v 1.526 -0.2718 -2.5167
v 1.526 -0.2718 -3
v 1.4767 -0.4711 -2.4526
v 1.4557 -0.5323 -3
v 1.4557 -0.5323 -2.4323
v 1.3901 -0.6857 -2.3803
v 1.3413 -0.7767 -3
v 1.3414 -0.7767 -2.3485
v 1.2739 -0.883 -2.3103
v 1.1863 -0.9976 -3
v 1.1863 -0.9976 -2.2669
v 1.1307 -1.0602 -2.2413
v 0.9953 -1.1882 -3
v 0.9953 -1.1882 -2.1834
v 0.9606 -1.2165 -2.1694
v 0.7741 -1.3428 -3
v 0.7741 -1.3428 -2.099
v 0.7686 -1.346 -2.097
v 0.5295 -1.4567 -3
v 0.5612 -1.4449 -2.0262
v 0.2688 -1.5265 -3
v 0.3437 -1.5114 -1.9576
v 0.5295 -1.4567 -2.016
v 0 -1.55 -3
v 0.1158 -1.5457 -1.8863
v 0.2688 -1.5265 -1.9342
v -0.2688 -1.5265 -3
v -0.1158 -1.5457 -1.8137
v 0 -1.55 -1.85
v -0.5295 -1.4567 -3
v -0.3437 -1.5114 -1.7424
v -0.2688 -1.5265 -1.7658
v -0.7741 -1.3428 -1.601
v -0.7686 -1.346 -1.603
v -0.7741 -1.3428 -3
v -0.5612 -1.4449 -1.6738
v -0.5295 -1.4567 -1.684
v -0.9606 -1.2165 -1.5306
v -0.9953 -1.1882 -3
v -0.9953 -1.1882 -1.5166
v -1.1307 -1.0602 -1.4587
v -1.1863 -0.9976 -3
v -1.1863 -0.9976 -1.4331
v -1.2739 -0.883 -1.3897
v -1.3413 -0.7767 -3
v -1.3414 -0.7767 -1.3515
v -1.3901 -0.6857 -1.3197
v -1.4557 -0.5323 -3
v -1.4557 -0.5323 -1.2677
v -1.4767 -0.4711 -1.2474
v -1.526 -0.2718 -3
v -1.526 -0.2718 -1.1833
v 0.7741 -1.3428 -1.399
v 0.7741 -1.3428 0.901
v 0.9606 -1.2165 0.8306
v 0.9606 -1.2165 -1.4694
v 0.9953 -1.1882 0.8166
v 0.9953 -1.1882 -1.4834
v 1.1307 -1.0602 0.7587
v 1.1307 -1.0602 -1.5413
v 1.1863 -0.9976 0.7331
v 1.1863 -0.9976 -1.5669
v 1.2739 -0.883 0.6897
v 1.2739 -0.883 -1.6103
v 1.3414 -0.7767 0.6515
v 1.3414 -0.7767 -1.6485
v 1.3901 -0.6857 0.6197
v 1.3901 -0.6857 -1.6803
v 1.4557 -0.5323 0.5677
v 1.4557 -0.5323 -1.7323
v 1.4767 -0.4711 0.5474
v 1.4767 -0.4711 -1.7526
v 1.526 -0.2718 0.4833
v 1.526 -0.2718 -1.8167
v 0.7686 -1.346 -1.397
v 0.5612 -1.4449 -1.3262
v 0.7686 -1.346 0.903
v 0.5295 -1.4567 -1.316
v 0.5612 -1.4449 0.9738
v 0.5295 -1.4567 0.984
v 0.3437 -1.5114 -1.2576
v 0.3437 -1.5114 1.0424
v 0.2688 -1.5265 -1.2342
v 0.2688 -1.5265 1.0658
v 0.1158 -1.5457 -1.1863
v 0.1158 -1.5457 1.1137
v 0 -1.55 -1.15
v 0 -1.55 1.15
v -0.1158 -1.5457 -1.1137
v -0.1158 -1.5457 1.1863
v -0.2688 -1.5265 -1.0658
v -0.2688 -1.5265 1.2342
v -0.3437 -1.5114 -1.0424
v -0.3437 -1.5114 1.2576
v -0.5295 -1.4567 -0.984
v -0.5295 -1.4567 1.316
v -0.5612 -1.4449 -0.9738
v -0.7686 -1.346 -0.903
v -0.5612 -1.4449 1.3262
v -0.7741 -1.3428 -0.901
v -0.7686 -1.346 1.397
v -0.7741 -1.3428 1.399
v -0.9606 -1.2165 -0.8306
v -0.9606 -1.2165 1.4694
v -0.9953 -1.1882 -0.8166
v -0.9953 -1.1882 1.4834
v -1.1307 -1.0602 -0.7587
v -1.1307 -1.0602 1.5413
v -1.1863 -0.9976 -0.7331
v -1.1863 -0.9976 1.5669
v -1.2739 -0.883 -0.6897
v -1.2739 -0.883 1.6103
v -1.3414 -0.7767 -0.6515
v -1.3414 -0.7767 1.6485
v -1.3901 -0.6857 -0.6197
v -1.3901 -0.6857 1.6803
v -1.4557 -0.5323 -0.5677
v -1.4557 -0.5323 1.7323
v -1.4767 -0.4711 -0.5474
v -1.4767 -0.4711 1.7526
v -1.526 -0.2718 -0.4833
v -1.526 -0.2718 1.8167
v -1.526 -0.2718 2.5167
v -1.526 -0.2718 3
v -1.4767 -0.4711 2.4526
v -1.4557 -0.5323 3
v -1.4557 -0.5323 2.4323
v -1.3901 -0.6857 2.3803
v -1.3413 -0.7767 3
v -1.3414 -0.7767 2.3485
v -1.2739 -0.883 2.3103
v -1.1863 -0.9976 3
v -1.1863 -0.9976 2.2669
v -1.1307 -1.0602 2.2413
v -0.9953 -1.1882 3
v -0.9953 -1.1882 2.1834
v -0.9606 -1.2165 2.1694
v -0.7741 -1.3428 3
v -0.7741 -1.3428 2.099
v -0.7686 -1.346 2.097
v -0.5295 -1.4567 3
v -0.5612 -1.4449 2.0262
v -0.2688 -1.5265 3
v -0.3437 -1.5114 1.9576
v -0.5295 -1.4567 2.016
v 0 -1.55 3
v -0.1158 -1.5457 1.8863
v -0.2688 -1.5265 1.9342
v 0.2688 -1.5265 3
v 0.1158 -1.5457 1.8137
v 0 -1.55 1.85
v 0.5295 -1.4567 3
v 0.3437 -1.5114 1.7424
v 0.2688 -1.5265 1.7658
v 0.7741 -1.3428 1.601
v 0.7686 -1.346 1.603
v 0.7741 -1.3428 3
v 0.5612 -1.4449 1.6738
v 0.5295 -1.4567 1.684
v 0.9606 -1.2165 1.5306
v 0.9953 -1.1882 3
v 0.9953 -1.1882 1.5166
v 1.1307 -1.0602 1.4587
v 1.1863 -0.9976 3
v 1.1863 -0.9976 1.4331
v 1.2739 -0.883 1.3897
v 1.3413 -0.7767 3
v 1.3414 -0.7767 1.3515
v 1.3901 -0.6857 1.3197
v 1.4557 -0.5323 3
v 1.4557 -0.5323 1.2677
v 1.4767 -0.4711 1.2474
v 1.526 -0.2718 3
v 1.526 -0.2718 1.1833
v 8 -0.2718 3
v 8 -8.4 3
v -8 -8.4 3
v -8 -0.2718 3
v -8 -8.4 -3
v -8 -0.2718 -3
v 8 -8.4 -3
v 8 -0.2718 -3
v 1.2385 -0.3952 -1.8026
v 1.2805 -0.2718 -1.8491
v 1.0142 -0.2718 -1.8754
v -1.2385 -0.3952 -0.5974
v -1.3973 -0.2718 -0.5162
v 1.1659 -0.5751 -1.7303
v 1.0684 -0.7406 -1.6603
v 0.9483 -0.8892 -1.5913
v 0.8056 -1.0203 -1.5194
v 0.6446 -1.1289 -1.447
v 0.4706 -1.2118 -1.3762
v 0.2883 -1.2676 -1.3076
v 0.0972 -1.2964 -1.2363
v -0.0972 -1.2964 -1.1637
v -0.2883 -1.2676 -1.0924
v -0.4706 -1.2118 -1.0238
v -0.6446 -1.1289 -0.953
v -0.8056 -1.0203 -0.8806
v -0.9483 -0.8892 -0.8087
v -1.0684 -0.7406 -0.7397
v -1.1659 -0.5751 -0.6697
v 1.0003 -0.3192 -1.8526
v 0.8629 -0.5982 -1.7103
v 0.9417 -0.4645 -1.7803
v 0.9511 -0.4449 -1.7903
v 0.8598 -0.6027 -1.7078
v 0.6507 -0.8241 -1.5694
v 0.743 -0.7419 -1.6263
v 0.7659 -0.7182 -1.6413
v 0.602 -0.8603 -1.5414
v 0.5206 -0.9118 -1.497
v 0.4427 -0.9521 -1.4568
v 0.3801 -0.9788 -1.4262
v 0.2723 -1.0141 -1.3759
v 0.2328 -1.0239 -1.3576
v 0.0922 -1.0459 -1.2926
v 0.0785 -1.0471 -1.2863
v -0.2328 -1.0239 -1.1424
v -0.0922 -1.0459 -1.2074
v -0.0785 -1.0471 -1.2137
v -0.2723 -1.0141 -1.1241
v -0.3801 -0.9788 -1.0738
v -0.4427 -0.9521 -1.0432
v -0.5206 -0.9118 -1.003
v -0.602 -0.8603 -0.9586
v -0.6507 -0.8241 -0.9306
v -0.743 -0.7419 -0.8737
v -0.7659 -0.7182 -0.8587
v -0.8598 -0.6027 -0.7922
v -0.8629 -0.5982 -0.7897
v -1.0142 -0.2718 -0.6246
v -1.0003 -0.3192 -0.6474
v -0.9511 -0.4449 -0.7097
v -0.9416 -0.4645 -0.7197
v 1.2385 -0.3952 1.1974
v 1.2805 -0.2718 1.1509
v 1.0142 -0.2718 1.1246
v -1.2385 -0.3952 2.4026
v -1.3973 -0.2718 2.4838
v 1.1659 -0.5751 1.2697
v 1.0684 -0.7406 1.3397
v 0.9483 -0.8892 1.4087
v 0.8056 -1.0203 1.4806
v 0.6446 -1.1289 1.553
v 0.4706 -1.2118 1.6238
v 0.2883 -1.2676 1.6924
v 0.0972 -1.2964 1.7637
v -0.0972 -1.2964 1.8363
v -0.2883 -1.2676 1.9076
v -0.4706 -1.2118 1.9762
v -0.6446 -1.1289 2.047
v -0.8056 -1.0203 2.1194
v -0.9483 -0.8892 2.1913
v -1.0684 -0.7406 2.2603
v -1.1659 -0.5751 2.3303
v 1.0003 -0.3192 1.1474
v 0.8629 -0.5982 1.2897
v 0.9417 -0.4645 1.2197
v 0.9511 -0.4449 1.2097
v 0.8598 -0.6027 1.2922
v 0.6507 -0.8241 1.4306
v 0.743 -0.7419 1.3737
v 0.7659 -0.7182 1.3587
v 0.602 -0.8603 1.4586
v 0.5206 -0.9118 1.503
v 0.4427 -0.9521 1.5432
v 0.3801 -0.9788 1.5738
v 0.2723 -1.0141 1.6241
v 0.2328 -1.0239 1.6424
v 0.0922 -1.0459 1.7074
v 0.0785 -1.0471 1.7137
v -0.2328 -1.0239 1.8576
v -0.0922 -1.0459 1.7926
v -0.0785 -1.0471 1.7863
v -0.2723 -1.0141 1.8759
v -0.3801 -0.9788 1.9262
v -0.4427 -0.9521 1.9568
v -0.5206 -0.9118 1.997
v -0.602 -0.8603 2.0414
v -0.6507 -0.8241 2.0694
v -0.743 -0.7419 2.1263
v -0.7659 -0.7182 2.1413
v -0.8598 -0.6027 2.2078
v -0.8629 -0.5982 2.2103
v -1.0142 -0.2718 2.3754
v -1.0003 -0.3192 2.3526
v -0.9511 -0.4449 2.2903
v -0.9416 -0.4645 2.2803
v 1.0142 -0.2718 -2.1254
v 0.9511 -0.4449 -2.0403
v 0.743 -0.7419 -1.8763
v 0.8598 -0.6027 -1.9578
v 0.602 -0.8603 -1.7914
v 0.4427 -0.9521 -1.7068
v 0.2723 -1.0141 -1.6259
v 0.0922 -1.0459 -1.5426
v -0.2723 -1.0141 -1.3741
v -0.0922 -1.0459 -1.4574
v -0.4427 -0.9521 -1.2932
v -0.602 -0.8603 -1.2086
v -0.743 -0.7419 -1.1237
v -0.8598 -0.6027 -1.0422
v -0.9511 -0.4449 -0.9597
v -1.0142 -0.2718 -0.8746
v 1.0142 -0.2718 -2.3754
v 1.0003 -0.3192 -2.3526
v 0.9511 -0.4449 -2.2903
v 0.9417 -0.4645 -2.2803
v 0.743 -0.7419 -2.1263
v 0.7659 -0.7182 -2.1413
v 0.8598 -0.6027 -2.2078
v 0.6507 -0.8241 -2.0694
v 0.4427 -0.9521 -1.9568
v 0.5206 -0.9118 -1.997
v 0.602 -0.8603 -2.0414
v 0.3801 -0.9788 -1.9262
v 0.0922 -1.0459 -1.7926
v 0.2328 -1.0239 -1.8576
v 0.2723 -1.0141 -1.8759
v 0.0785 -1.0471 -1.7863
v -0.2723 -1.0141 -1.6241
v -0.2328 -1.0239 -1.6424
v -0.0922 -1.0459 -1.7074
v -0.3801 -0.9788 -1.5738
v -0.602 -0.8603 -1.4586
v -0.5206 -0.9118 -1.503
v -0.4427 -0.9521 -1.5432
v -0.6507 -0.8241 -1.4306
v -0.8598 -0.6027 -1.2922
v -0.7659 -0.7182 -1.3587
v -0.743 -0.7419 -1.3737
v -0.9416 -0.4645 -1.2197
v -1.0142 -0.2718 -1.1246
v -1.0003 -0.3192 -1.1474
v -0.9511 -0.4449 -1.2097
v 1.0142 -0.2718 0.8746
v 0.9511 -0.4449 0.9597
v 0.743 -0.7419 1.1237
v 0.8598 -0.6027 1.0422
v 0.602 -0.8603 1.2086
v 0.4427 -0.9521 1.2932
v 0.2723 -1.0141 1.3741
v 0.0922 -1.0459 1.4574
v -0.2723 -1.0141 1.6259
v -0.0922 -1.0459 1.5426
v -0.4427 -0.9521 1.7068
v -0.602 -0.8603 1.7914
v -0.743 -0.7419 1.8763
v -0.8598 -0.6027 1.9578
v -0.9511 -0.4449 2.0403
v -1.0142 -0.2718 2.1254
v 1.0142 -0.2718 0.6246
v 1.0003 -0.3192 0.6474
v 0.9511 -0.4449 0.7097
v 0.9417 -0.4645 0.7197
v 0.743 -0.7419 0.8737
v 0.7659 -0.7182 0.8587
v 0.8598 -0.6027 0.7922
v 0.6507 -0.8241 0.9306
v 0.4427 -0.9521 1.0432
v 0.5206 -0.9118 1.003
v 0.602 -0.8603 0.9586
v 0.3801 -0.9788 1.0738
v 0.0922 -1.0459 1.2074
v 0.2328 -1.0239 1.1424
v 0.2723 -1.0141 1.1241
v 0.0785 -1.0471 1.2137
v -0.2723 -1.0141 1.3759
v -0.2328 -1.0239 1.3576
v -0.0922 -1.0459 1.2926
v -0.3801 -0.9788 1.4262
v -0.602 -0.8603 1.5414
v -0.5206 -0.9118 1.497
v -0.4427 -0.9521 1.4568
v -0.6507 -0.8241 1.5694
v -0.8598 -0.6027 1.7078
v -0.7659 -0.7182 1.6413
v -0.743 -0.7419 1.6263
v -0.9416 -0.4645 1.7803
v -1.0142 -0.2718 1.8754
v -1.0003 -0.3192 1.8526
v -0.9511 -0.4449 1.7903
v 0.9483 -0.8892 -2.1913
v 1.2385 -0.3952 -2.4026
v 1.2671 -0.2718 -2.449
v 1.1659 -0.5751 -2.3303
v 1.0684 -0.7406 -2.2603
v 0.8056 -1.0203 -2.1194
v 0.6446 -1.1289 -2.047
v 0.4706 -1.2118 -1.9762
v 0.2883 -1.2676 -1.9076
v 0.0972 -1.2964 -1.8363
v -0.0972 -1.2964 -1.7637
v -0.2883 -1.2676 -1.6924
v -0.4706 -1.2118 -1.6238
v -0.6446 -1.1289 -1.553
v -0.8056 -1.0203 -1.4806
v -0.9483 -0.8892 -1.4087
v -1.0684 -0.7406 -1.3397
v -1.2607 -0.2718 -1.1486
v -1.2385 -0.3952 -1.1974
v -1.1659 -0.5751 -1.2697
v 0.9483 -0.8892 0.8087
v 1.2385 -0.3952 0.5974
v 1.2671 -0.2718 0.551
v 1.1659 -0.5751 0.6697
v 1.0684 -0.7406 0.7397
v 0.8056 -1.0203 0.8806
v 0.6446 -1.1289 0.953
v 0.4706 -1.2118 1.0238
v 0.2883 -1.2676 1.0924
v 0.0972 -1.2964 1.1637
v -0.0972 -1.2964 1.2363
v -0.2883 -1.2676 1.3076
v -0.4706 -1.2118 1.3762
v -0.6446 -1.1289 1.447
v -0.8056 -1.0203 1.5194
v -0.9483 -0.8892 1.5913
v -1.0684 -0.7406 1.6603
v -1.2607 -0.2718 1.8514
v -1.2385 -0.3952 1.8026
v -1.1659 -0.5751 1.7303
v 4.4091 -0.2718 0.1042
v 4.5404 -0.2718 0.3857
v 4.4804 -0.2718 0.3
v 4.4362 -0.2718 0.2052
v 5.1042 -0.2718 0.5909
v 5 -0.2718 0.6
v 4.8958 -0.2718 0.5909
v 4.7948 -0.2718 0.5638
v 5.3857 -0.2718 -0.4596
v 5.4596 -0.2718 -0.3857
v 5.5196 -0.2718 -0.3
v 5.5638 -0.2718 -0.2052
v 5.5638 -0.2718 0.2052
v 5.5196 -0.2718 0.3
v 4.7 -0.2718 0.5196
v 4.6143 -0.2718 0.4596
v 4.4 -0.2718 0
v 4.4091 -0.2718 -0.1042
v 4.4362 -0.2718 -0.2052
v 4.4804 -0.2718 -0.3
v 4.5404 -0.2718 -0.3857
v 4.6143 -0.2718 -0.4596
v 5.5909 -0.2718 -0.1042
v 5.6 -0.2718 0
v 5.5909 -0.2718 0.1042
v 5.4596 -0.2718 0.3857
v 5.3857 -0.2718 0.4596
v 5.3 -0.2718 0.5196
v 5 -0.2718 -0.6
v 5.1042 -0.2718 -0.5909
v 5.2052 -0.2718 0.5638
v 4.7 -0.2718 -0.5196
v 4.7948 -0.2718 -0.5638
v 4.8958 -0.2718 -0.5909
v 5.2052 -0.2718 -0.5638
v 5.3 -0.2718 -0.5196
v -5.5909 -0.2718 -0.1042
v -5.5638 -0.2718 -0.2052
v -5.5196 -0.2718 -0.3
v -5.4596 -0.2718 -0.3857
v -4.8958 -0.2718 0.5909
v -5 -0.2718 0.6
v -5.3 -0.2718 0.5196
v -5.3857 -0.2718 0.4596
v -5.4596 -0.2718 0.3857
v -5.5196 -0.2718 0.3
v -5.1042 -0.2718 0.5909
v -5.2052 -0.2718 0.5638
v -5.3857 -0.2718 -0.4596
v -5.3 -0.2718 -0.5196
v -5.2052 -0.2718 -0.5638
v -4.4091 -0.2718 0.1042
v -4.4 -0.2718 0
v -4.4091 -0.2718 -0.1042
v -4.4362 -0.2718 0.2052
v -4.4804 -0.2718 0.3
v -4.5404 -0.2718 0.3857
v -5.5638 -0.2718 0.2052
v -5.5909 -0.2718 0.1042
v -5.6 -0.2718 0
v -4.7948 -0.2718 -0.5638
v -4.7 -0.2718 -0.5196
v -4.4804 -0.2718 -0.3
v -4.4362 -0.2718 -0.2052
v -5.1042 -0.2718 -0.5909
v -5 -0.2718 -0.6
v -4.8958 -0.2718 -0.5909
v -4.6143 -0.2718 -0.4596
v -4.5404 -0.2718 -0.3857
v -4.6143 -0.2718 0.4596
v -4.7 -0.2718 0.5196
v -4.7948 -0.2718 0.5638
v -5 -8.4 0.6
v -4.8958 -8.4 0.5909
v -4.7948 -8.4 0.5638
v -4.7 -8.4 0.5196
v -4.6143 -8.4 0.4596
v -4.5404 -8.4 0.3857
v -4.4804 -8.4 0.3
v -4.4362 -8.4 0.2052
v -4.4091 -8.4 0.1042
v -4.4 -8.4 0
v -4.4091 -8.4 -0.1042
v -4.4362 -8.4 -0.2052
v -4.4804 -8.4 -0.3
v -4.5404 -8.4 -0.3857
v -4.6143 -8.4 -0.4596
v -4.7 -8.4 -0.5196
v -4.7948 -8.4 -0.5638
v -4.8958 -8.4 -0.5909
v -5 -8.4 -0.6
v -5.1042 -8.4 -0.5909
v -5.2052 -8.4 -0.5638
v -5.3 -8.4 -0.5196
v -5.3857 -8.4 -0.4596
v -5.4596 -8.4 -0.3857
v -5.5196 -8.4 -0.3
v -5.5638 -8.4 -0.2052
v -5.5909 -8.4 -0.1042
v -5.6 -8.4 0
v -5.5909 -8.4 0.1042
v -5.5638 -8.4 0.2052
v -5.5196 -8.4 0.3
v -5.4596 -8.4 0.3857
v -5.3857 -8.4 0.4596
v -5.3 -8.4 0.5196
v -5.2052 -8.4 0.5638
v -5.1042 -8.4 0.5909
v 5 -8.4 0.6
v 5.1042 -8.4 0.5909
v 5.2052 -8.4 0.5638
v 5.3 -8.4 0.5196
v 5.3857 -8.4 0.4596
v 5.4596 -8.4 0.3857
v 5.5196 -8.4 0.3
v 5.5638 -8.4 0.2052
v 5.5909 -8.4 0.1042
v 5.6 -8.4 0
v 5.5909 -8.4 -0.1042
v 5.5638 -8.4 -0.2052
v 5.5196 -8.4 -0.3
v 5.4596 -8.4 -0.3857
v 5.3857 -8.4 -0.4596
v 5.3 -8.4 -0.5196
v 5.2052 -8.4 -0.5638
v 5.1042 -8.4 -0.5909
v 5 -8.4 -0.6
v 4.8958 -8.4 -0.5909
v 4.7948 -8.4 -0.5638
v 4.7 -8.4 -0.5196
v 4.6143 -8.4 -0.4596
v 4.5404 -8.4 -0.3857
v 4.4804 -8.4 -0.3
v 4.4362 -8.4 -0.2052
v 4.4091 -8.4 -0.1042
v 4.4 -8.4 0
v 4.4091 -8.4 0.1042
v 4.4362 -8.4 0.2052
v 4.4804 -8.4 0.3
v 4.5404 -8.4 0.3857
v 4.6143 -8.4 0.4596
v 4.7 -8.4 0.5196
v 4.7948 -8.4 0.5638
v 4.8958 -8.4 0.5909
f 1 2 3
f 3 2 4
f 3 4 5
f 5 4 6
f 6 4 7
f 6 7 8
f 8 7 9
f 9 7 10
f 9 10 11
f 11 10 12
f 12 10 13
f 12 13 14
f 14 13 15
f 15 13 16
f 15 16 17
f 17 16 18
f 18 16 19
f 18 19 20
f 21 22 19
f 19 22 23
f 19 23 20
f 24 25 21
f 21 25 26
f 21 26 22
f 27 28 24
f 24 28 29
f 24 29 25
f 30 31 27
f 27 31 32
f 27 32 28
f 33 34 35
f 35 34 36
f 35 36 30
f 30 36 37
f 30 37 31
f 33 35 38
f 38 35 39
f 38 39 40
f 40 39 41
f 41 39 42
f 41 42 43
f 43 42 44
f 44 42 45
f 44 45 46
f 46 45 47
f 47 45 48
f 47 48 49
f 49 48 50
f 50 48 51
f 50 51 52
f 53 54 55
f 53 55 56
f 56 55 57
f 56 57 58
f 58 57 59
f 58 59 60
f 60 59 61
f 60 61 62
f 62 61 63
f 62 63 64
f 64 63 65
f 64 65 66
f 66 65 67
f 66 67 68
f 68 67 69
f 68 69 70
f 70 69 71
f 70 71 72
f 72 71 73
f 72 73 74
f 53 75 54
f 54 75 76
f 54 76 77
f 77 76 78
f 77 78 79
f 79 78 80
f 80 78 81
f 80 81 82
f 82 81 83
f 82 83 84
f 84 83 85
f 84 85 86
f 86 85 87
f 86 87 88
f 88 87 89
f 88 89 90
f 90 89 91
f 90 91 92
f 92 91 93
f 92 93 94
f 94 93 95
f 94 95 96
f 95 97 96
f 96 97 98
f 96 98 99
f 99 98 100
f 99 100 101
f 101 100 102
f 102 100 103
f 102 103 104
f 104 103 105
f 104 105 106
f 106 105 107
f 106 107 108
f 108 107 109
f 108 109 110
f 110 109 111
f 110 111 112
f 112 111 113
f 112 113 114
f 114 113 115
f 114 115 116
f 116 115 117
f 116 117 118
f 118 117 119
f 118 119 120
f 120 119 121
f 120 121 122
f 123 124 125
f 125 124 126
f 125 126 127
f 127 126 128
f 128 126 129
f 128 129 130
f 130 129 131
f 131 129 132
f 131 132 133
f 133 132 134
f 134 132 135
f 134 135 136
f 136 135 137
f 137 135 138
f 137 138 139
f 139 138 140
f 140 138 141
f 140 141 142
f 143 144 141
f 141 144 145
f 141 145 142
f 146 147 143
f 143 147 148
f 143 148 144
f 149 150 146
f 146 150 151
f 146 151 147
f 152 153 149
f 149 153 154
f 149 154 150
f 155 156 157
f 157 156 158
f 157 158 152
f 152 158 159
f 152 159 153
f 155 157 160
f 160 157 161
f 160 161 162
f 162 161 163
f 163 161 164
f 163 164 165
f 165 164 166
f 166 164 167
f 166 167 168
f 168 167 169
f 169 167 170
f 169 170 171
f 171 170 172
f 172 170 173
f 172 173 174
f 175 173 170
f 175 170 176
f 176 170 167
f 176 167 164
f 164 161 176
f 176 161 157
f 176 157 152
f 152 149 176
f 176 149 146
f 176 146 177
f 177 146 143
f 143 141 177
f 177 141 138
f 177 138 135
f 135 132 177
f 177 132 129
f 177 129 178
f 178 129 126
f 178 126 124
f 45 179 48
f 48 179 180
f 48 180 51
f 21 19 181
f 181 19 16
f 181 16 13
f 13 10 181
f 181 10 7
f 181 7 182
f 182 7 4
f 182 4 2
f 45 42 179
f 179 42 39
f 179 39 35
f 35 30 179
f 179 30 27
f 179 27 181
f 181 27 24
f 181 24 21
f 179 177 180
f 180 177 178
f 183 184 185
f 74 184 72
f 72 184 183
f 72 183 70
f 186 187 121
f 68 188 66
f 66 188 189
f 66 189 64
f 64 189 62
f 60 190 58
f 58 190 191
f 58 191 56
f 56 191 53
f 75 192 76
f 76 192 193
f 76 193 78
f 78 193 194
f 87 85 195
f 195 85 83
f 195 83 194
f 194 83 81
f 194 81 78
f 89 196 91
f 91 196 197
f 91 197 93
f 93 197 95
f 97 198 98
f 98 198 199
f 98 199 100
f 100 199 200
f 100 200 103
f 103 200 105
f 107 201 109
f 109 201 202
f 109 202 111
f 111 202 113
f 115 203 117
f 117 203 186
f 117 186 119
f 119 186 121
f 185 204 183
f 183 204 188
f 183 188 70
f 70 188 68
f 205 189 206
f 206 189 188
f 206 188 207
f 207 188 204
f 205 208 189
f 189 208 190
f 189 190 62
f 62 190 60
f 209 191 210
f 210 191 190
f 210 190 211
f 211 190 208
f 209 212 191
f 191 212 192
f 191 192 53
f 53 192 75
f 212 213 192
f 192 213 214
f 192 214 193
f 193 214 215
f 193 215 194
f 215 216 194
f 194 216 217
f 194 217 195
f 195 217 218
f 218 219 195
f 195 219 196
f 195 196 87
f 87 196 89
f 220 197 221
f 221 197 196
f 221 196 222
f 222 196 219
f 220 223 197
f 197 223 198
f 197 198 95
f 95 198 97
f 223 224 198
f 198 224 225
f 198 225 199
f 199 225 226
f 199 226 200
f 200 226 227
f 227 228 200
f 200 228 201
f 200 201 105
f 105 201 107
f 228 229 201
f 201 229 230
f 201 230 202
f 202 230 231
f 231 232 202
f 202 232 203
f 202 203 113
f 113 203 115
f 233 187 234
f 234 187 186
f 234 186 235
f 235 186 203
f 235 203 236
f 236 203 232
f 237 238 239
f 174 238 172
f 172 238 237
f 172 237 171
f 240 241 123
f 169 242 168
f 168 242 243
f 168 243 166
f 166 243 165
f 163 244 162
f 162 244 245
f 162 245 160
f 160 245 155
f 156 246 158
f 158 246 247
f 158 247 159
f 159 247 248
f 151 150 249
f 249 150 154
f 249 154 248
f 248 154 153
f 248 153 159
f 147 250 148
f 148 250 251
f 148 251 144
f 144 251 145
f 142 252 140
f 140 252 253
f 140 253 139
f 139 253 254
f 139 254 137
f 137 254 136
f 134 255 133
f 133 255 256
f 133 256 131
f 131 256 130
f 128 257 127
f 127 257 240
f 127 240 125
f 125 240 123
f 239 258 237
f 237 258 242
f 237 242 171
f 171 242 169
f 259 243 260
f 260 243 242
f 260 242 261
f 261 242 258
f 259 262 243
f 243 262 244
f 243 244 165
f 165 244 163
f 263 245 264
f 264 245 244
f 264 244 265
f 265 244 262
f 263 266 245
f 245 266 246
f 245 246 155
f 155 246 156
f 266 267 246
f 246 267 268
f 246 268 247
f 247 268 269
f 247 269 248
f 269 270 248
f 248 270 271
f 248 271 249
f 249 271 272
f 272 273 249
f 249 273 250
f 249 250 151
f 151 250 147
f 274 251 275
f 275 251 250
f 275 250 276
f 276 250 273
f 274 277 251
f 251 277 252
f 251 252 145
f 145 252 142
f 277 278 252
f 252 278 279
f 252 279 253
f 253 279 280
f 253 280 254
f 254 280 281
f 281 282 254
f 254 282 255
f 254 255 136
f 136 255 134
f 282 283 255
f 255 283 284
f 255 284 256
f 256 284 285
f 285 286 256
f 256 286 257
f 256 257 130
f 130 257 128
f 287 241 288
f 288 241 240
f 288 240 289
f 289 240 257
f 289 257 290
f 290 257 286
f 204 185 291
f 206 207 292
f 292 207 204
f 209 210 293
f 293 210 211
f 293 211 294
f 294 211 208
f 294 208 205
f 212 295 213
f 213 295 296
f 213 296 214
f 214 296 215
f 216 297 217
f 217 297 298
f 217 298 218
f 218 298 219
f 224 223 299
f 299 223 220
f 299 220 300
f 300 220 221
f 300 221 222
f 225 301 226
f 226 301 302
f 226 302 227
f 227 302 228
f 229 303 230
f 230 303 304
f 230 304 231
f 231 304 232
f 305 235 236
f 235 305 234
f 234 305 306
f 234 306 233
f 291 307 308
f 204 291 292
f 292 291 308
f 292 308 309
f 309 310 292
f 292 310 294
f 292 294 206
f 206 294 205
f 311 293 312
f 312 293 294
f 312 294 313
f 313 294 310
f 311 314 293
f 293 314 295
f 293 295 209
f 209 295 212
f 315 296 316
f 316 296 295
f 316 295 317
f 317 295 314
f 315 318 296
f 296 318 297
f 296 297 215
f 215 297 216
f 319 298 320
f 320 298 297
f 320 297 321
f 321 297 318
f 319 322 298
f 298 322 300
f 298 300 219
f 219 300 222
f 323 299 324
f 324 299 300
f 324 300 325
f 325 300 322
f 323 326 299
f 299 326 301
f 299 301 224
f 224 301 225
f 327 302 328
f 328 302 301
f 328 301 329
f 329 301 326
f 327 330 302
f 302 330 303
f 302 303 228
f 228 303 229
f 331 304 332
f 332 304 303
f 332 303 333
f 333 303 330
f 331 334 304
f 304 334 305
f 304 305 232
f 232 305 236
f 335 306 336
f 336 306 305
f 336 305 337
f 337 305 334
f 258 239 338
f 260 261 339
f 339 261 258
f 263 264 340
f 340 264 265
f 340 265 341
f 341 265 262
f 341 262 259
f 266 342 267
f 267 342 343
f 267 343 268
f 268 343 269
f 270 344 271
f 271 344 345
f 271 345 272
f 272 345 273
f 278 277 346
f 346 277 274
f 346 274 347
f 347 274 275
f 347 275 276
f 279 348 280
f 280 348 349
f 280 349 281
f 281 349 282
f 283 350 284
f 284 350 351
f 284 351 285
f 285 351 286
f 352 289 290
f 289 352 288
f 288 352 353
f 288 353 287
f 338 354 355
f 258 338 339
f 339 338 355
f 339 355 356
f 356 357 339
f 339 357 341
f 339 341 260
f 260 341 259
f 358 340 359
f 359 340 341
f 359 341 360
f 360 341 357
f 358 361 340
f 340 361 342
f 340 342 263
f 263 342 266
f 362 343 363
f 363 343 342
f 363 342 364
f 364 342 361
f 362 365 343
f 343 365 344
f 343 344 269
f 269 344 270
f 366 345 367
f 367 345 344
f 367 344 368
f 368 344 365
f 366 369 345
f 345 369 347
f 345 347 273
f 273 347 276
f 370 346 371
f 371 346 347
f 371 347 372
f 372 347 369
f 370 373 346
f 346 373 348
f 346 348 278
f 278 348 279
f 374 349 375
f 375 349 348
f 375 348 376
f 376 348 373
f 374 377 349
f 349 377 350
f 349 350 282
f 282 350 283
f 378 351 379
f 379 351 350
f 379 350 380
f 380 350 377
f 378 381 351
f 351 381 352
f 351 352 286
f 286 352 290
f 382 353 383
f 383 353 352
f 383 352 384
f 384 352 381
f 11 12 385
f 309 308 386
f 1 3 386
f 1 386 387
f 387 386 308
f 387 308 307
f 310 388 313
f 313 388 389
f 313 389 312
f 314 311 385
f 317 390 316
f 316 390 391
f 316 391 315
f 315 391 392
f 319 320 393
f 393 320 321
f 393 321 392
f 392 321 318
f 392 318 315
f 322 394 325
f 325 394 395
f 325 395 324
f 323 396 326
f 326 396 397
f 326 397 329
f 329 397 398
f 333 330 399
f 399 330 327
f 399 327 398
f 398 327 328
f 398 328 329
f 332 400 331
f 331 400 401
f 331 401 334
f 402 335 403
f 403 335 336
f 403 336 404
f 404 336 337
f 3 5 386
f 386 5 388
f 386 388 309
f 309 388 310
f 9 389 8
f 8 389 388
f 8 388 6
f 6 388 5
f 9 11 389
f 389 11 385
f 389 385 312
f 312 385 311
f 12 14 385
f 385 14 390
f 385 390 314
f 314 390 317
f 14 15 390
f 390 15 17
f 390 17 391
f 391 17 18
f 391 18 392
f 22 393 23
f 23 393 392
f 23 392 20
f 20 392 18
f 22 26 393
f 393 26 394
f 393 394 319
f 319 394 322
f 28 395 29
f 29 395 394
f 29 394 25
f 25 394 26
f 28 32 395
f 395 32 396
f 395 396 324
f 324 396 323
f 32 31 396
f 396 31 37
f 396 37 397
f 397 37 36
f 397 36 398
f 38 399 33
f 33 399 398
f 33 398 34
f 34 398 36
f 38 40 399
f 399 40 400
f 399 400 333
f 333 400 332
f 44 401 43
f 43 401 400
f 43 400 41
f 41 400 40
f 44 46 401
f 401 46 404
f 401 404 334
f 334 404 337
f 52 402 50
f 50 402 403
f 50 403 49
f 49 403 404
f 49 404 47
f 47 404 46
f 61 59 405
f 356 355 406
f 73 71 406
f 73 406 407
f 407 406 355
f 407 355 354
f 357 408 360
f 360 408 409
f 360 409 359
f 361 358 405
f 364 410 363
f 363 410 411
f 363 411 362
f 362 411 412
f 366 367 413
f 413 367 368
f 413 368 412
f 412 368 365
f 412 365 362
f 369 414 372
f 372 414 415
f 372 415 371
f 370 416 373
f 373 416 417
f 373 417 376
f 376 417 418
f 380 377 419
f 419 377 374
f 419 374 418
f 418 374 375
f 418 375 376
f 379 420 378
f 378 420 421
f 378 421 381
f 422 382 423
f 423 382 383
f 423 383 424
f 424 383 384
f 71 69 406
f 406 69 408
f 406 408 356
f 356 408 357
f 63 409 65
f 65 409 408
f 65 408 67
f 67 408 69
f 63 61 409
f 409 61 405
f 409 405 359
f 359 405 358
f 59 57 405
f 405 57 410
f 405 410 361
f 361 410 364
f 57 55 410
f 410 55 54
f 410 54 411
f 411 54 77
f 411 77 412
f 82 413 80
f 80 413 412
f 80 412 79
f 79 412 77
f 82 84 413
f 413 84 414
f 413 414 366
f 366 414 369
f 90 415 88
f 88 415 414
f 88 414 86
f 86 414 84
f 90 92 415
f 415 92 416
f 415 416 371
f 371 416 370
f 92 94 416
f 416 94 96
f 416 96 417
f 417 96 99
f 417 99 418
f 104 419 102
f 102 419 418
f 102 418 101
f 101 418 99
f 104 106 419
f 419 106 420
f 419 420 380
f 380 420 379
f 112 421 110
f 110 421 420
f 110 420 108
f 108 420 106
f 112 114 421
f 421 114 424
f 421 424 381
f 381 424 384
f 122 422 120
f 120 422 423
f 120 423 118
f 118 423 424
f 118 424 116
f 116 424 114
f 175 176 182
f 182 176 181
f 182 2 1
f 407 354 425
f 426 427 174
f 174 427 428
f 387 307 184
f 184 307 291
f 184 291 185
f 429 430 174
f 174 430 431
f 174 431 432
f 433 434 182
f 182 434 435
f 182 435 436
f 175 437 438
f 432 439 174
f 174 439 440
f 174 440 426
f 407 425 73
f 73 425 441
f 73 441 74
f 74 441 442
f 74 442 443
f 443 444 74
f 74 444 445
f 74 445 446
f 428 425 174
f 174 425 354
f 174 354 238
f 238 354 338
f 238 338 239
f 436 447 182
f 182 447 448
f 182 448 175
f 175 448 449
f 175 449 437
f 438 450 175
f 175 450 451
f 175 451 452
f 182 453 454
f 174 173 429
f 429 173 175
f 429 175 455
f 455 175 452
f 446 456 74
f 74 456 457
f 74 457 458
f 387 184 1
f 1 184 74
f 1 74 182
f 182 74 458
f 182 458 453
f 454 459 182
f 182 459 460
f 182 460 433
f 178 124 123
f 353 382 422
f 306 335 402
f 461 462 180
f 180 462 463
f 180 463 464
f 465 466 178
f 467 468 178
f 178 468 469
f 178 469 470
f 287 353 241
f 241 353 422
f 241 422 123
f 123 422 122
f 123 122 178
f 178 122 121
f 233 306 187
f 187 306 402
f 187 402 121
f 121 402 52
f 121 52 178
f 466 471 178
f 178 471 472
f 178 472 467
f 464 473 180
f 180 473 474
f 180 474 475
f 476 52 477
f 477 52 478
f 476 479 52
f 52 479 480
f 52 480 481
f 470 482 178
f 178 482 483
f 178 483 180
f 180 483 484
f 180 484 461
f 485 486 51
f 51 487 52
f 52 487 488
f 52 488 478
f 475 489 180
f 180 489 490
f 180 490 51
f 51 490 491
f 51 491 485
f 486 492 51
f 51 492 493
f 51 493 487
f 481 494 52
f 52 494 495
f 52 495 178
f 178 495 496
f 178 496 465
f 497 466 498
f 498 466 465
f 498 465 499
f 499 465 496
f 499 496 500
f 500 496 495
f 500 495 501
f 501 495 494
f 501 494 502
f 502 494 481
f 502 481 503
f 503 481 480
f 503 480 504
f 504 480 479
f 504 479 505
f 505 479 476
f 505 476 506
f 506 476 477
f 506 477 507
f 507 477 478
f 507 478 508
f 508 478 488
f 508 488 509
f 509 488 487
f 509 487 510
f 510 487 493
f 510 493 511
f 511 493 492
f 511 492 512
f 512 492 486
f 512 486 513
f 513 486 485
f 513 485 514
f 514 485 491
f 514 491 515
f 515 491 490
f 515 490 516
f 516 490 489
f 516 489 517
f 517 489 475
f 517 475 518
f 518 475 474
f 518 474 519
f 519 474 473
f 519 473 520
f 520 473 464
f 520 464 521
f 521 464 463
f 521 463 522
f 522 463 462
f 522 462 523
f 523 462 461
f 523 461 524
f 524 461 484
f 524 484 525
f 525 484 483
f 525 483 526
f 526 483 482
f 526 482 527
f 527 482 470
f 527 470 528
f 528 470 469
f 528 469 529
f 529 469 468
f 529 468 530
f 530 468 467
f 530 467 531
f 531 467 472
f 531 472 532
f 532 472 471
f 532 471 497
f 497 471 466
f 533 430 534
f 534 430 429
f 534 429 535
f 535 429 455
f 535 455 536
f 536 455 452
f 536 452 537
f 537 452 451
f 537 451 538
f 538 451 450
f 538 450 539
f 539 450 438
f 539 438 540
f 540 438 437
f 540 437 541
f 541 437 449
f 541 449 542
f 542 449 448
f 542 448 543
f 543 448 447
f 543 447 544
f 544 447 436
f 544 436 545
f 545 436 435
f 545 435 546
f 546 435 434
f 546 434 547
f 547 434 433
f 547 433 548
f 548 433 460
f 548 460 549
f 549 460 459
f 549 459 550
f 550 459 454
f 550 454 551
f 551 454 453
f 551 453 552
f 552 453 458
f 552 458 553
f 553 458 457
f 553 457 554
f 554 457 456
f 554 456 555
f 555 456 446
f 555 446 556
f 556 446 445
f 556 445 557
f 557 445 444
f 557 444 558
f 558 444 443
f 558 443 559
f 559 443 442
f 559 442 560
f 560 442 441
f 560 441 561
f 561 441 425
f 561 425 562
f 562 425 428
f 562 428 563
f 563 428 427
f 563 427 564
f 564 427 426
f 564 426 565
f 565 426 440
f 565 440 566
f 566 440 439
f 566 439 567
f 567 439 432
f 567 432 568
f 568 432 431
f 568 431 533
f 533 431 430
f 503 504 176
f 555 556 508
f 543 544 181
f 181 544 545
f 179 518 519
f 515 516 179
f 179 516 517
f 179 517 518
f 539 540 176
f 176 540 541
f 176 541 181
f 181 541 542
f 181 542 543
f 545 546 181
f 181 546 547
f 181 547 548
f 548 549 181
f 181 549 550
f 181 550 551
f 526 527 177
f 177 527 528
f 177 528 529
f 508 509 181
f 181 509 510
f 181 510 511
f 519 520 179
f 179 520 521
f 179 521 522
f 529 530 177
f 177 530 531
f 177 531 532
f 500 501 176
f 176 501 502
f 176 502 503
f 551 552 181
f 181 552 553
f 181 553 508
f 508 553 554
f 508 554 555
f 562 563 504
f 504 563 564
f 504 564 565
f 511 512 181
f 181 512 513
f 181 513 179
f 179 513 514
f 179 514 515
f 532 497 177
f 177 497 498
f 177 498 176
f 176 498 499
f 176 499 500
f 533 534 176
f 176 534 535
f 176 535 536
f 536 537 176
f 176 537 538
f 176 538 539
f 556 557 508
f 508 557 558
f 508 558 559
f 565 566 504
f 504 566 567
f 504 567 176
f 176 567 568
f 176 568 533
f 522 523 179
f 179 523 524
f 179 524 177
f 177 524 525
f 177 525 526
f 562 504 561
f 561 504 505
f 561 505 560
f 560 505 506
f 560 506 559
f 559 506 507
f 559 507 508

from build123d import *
from build123d.topology import SkipClean

# Parameters (mm, degrees)
SKETCH_1_W               = 16
SKETCH_1_H               = 16
SKETCH_1_R               = 1.55
EXTRUDE_1_DEPTH          = 3
SWEEP_1_PITCH            = 3
CUT_EXTRUDE_2_DEPTH      = 13.033723282
CUT_EXTRUDE_2_DEPTH_BACK = 13.033723282
SKETCH_8_R               = 0.6
CUT_EXTRUDE_3_DEPTH      = 12.704700005
SKETCH_11_W              = 16
SKETCH_11_H              = 6
SKETCH_11_R              = 0.6
EXTRUDE_2_DEPTH          = 0.4


with BuildPart() as part:
    # 草图1 → 凸台-拉伸1 (new, symmetric)
    with BuildSketch(Plane.XY):
        Rectangle(SKETCH_1_W, SKETCH_1_H)
        Circle(SKETCH_1_R, mode=Mode.SUBTRACT)
    extrude(amount=EXTRUDE_1_DEPTH, both=True)

    # 扫描1: arcs per turn and ends read off the stored shape
    # 扫描1: the profile of 草图10 profile screwed along a left-hand helix through 2 turns, 10 arcs to a turn; built about Z, then put on its axis
    sweep_1_z = Axis((0, 0, 0), (0, 0, 1))
    sweep_1_corners = [(1.5503, 0, -0.39994), (1.5503, 0, -1.10006), (1.05, 0, -1), (1.05, 0, -0.5)]
    with BuildLine(mode=Mode.PRIVATE) as sweep_1_profile:
        Line(sweep_1_corners[0], sweep_1_corners[1])
        Line(sweep_1_corners[1], sweep_1_corners[2])
        Line(sweep_1_corners[2], sweep_1_corners[3])
        Line(sweep_1_corners[3], sweep_1_corners[0])
    sweep_1_cap = Face(sweep_1_profile.wire())
    sweep_1_turn_angles = [0, -18, -36, -54, -72, -90, -108, -126, -144, -162, -180, -198, -216, -234, -252, -270, -288, -306, -324, -342, -360]
    sweep_1_turn_weights = [1, 0.9510565162951535, 1, 0.9510565162951535, 1, 0.9510565162951535, 1, 0.9510565162951535, 1, 0.9510565162951535, 1, 0.9510565162951535, 1, 0.9510565162951535, 1, 0.9510565162951535, 1, 0.9510565162951535, 1, 0.9510565162951535, 1]
    sweep_1_turn_rails = [Edge.make_bspline([Vector(p[0], p[1], 0).rotate(sweep_1_z, sweep_1_turn_angles[k]) / sweep_1_turn_weights[k] + Vector(0, 0, p[2] + -SWEEP_1_PITCH * sweep_1_turn_angles[k] / 360) for k in range(21)], [0, 0, 0, 1, 1, 2, 2, 3, 3, 4, 4, 5, 5, 6, 6, 7, 7, 8, 8, 9, 9, 10, 10, 10], 2, sweep_1_turn_weights) for p in sweep_1_corners]
    sweep_1_turn_sides = [Face.make_surface_from_curves(sweep_1_turn_rails[p[0]], sweep_1_turn_rails[p[1]]) for p in [(0, 1), (1, 2), (2, 3), (3, 0)]]
    sweep_1 = Plane(origin=(0, 0, 3), x_dir=(1, 0, 0), z_dir=(0, 0, -1)) * Solid(Shell([*[p.moved(Location((0, 0, SWEEP_1_PITCH * i))) for i in range(2) for p in sweep_1_turn_sides], sweep_1_cap, sweep_1_cap.rotate(sweep_1_z, -720).moved(Location((0, 0, -SWEEP_1_PITCH * -720 / 360)))]))
    add(sweep_1)

    # 草图7 → 切除-拉伸2 (cut, two sides: drawn at the far end of the back side and taken through both)
    with BuildSketch(Plane.XY.offset(-CUT_EXTRUDE_2_DEPTH_BACK)):
        with BuildLine():
            Line((-8, -0.271759997), (-1.014222118, -0.271759997))
            ThreePointArc((-1.014222118, -0.271759997), (-0.137052502, 1.041017104), (1.05, 0))
            ThreePointArc((1.05, 0), (1.041017104, -0.137052502), (1.014222118, -0.271759997))
            Line((1.014222118, -0.271759997), (8, -0.271759997))
            Line((8, -0.271759997), (8, 8))
            Line((8, 8), (-8, 8))
            Line((-8, 8), (-8, -0.271759997))
        make_face()
        with BuildLine():
            Line((1.014222118, -0.271759997), (0, 0))
            Line((0, 0), (-1.014222118, -0.271759997))
            ThreePointArc((-1.014222118, -0.271759997), (0, -1.05), (1.014222118, -0.271759997))
        make_face()
        with BuildLine():
            Line((-1.014222118, -0.271759997), (0, 0))
            Line((0, 0), (1.014222118, -0.271759997))
            ThreePointArc((1.014222118, -0.271759997), (1.041017104, -0.137052502), (1.05, 0))
            ThreePointArc((1.05, 0), (-0.137052502, 1.041017104), (-1.014222118, -0.271759997))
        make_face()
    extrude(amount=CUT_EXTRUDE_2_DEPTH + CUT_EXTRUDE_2_DEPTH_BACK, mode=Mode.SUBTRACT)

    # 草图8 → 切除-拉伸3 (cut, through all)
    with BuildSketch(Plane(origin=(0, 0, 0), x_dir=(1, 0, 0), z_dir=(0, 1, 0))):
        with Locations(Location((-5, 0, 0), (0, 0, 270))):
            Circle(SKETCH_8_R)
        with Locations(Location((5, 0, 0), (0, 0, 270))):
            Circle(SKETCH_8_R)
    extrude(amount=-CUT_EXTRUDE_3_DEPTH, mode=Mode.SUBTRACT)

    # 草图11 → 凸台-拉伸2 (add)
    with SkipClean():  # the faces are left unmerged after this step: merging them gives an invalid solid
        with BuildSketch(Plane.XZ.offset(8)):
            Rectangle(SKETCH_11_W, SKETCH_11_H)
            with Locations((5, 0)):
                Circle(SKETCH_11_R, mode=Mode.SUBTRACT)
            with Locations(Location((-5, 0, 0), (0, 0, 180))):
                Circle(SKETCH_11_R, mode=Mode.SUBTRACT)
        extrude(amount=EXTRUDE_2_DEPTH)


solid = part.part
